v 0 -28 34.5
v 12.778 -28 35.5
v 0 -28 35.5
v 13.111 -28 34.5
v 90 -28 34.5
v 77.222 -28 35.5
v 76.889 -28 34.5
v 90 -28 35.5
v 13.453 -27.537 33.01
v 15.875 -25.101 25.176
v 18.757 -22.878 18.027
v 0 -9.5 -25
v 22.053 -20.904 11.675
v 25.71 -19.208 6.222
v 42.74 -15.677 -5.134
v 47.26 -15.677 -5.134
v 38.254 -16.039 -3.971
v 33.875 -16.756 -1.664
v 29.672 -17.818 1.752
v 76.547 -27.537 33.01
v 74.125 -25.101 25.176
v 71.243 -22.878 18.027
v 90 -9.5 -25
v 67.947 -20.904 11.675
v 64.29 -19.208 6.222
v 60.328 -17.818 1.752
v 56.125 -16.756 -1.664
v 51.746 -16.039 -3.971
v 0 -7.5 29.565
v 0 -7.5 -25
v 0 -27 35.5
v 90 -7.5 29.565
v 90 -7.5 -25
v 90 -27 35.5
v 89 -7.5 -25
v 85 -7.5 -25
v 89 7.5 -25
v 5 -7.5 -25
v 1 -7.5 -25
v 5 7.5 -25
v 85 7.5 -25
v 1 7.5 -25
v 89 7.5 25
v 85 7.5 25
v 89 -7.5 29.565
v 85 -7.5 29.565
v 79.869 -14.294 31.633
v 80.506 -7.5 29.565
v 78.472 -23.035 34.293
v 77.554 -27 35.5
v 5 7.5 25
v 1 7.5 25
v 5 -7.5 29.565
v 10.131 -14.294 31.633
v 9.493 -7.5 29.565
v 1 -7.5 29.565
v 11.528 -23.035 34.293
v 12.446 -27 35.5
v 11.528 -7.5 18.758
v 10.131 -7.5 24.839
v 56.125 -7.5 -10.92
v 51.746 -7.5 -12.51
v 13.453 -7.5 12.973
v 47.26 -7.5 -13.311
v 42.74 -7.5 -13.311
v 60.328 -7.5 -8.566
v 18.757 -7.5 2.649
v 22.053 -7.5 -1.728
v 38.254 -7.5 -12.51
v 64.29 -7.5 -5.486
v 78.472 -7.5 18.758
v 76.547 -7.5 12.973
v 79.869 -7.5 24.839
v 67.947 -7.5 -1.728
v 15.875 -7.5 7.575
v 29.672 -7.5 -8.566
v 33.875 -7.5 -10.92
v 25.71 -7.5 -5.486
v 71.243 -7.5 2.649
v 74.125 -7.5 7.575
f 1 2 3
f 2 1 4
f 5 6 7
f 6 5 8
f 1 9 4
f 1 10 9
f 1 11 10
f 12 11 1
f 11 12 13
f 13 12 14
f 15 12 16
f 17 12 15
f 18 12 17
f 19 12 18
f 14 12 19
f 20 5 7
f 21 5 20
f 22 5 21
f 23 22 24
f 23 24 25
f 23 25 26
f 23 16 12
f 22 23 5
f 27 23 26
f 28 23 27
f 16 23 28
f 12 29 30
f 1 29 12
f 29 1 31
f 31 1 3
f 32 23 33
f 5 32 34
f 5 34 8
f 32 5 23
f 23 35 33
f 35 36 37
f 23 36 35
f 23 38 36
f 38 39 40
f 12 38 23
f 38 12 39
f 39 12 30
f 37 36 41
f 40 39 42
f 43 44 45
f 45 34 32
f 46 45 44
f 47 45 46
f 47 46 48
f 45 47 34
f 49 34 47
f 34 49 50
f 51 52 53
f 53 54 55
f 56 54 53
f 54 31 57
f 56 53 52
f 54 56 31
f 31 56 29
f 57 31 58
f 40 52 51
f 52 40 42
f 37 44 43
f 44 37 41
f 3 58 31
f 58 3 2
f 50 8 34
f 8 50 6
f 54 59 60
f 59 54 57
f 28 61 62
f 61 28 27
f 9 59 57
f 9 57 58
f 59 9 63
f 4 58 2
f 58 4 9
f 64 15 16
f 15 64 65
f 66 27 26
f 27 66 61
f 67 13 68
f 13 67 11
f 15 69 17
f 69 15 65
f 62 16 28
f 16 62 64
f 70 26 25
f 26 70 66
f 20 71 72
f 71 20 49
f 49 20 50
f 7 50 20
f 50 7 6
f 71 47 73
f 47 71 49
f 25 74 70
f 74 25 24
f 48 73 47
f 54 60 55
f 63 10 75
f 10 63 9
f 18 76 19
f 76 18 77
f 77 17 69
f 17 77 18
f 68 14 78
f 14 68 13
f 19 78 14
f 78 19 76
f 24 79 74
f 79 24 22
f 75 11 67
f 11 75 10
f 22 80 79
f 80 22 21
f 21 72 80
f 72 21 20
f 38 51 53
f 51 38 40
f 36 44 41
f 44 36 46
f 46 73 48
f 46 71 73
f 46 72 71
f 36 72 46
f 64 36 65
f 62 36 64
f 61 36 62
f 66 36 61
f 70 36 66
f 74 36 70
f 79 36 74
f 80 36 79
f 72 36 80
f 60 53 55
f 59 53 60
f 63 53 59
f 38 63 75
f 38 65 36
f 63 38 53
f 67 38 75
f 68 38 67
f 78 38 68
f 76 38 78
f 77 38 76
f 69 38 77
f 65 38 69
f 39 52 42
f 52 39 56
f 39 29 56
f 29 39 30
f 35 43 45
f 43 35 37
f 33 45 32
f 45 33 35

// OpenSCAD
$fn=50;

// length of mounting strip base
sx = 15; 
// widith of mounting strip base
sy = 50  ;
// height of mounting strip base
sh = 2  ;

side_wall_lim=90;

module hairdryer_ring_old()
{
  ring_rotate=45;
  openingdeg=50;
  dia=50;
  thickness = 2;
  rotate([ring_rotate,0,0])
  translate([dia+thickness+1,0,0])
  rotate([0,0,openingdeg/2])
  rotate_extrude(angle = 360-openingdeg, convexity = 3)
  translate([dia, 0, 0])
  minkowski()
  {
    square([thickness,thickness]);
    circle(r=1);
  }
}

module hairdryer_ring()
{
  ring_rotate=45;

  translate([0,0,30])
  rotate([ring_rotate,0,0])
  translate([side_wall_lim/2,0,0])
    cylinder(r=side_wall_lim*0.8/2, h=100, center=true);
}





difference()
{
  hull()
  {
    translate([1/2,0,0])
      cube([1,sx,sy], center=true);
    translate([side_wall_lim-1/2,0,0])
      cube([1,sx,sy], center=true);
    translate([side_wall_lim/2,-sx/2-2,-sy/2])  
      cube([side_wall_lim,0.001,0.001], center=true);
    translate([side_wall_lim/2,-sx/2-20,sy/2+10])  
      cube([side_wall_lim,1,1], center=true);

  }
  
  #hairdryer_ring();
  translate([side_wall_lim/2,0,0])
    cube([side_wall_lim-10,sx,sy*2], center=true);
  
  // For adhesive Strip
  translate([1/2,0,0])
    cube([1,sx,sy*2], center=true);
  translate([side_wall_lim-1/2,0,0])
    cube([1,sx,sy*2], center=true);
  
  // Cleanup Edge
  translate([0,0,0])
    cube([1,sx,sy*2], center=true);
  translate([side_wall_lim,0,0])
    cube([1,sx,sy*2], center=true);
}



// Bathroom Walls
%translate([-1/2,0,0])
  cube([1,100,100], center=true);
%translate([side_wall_lim+1/2,0,0])
  cube([1,100,100], center=true);
